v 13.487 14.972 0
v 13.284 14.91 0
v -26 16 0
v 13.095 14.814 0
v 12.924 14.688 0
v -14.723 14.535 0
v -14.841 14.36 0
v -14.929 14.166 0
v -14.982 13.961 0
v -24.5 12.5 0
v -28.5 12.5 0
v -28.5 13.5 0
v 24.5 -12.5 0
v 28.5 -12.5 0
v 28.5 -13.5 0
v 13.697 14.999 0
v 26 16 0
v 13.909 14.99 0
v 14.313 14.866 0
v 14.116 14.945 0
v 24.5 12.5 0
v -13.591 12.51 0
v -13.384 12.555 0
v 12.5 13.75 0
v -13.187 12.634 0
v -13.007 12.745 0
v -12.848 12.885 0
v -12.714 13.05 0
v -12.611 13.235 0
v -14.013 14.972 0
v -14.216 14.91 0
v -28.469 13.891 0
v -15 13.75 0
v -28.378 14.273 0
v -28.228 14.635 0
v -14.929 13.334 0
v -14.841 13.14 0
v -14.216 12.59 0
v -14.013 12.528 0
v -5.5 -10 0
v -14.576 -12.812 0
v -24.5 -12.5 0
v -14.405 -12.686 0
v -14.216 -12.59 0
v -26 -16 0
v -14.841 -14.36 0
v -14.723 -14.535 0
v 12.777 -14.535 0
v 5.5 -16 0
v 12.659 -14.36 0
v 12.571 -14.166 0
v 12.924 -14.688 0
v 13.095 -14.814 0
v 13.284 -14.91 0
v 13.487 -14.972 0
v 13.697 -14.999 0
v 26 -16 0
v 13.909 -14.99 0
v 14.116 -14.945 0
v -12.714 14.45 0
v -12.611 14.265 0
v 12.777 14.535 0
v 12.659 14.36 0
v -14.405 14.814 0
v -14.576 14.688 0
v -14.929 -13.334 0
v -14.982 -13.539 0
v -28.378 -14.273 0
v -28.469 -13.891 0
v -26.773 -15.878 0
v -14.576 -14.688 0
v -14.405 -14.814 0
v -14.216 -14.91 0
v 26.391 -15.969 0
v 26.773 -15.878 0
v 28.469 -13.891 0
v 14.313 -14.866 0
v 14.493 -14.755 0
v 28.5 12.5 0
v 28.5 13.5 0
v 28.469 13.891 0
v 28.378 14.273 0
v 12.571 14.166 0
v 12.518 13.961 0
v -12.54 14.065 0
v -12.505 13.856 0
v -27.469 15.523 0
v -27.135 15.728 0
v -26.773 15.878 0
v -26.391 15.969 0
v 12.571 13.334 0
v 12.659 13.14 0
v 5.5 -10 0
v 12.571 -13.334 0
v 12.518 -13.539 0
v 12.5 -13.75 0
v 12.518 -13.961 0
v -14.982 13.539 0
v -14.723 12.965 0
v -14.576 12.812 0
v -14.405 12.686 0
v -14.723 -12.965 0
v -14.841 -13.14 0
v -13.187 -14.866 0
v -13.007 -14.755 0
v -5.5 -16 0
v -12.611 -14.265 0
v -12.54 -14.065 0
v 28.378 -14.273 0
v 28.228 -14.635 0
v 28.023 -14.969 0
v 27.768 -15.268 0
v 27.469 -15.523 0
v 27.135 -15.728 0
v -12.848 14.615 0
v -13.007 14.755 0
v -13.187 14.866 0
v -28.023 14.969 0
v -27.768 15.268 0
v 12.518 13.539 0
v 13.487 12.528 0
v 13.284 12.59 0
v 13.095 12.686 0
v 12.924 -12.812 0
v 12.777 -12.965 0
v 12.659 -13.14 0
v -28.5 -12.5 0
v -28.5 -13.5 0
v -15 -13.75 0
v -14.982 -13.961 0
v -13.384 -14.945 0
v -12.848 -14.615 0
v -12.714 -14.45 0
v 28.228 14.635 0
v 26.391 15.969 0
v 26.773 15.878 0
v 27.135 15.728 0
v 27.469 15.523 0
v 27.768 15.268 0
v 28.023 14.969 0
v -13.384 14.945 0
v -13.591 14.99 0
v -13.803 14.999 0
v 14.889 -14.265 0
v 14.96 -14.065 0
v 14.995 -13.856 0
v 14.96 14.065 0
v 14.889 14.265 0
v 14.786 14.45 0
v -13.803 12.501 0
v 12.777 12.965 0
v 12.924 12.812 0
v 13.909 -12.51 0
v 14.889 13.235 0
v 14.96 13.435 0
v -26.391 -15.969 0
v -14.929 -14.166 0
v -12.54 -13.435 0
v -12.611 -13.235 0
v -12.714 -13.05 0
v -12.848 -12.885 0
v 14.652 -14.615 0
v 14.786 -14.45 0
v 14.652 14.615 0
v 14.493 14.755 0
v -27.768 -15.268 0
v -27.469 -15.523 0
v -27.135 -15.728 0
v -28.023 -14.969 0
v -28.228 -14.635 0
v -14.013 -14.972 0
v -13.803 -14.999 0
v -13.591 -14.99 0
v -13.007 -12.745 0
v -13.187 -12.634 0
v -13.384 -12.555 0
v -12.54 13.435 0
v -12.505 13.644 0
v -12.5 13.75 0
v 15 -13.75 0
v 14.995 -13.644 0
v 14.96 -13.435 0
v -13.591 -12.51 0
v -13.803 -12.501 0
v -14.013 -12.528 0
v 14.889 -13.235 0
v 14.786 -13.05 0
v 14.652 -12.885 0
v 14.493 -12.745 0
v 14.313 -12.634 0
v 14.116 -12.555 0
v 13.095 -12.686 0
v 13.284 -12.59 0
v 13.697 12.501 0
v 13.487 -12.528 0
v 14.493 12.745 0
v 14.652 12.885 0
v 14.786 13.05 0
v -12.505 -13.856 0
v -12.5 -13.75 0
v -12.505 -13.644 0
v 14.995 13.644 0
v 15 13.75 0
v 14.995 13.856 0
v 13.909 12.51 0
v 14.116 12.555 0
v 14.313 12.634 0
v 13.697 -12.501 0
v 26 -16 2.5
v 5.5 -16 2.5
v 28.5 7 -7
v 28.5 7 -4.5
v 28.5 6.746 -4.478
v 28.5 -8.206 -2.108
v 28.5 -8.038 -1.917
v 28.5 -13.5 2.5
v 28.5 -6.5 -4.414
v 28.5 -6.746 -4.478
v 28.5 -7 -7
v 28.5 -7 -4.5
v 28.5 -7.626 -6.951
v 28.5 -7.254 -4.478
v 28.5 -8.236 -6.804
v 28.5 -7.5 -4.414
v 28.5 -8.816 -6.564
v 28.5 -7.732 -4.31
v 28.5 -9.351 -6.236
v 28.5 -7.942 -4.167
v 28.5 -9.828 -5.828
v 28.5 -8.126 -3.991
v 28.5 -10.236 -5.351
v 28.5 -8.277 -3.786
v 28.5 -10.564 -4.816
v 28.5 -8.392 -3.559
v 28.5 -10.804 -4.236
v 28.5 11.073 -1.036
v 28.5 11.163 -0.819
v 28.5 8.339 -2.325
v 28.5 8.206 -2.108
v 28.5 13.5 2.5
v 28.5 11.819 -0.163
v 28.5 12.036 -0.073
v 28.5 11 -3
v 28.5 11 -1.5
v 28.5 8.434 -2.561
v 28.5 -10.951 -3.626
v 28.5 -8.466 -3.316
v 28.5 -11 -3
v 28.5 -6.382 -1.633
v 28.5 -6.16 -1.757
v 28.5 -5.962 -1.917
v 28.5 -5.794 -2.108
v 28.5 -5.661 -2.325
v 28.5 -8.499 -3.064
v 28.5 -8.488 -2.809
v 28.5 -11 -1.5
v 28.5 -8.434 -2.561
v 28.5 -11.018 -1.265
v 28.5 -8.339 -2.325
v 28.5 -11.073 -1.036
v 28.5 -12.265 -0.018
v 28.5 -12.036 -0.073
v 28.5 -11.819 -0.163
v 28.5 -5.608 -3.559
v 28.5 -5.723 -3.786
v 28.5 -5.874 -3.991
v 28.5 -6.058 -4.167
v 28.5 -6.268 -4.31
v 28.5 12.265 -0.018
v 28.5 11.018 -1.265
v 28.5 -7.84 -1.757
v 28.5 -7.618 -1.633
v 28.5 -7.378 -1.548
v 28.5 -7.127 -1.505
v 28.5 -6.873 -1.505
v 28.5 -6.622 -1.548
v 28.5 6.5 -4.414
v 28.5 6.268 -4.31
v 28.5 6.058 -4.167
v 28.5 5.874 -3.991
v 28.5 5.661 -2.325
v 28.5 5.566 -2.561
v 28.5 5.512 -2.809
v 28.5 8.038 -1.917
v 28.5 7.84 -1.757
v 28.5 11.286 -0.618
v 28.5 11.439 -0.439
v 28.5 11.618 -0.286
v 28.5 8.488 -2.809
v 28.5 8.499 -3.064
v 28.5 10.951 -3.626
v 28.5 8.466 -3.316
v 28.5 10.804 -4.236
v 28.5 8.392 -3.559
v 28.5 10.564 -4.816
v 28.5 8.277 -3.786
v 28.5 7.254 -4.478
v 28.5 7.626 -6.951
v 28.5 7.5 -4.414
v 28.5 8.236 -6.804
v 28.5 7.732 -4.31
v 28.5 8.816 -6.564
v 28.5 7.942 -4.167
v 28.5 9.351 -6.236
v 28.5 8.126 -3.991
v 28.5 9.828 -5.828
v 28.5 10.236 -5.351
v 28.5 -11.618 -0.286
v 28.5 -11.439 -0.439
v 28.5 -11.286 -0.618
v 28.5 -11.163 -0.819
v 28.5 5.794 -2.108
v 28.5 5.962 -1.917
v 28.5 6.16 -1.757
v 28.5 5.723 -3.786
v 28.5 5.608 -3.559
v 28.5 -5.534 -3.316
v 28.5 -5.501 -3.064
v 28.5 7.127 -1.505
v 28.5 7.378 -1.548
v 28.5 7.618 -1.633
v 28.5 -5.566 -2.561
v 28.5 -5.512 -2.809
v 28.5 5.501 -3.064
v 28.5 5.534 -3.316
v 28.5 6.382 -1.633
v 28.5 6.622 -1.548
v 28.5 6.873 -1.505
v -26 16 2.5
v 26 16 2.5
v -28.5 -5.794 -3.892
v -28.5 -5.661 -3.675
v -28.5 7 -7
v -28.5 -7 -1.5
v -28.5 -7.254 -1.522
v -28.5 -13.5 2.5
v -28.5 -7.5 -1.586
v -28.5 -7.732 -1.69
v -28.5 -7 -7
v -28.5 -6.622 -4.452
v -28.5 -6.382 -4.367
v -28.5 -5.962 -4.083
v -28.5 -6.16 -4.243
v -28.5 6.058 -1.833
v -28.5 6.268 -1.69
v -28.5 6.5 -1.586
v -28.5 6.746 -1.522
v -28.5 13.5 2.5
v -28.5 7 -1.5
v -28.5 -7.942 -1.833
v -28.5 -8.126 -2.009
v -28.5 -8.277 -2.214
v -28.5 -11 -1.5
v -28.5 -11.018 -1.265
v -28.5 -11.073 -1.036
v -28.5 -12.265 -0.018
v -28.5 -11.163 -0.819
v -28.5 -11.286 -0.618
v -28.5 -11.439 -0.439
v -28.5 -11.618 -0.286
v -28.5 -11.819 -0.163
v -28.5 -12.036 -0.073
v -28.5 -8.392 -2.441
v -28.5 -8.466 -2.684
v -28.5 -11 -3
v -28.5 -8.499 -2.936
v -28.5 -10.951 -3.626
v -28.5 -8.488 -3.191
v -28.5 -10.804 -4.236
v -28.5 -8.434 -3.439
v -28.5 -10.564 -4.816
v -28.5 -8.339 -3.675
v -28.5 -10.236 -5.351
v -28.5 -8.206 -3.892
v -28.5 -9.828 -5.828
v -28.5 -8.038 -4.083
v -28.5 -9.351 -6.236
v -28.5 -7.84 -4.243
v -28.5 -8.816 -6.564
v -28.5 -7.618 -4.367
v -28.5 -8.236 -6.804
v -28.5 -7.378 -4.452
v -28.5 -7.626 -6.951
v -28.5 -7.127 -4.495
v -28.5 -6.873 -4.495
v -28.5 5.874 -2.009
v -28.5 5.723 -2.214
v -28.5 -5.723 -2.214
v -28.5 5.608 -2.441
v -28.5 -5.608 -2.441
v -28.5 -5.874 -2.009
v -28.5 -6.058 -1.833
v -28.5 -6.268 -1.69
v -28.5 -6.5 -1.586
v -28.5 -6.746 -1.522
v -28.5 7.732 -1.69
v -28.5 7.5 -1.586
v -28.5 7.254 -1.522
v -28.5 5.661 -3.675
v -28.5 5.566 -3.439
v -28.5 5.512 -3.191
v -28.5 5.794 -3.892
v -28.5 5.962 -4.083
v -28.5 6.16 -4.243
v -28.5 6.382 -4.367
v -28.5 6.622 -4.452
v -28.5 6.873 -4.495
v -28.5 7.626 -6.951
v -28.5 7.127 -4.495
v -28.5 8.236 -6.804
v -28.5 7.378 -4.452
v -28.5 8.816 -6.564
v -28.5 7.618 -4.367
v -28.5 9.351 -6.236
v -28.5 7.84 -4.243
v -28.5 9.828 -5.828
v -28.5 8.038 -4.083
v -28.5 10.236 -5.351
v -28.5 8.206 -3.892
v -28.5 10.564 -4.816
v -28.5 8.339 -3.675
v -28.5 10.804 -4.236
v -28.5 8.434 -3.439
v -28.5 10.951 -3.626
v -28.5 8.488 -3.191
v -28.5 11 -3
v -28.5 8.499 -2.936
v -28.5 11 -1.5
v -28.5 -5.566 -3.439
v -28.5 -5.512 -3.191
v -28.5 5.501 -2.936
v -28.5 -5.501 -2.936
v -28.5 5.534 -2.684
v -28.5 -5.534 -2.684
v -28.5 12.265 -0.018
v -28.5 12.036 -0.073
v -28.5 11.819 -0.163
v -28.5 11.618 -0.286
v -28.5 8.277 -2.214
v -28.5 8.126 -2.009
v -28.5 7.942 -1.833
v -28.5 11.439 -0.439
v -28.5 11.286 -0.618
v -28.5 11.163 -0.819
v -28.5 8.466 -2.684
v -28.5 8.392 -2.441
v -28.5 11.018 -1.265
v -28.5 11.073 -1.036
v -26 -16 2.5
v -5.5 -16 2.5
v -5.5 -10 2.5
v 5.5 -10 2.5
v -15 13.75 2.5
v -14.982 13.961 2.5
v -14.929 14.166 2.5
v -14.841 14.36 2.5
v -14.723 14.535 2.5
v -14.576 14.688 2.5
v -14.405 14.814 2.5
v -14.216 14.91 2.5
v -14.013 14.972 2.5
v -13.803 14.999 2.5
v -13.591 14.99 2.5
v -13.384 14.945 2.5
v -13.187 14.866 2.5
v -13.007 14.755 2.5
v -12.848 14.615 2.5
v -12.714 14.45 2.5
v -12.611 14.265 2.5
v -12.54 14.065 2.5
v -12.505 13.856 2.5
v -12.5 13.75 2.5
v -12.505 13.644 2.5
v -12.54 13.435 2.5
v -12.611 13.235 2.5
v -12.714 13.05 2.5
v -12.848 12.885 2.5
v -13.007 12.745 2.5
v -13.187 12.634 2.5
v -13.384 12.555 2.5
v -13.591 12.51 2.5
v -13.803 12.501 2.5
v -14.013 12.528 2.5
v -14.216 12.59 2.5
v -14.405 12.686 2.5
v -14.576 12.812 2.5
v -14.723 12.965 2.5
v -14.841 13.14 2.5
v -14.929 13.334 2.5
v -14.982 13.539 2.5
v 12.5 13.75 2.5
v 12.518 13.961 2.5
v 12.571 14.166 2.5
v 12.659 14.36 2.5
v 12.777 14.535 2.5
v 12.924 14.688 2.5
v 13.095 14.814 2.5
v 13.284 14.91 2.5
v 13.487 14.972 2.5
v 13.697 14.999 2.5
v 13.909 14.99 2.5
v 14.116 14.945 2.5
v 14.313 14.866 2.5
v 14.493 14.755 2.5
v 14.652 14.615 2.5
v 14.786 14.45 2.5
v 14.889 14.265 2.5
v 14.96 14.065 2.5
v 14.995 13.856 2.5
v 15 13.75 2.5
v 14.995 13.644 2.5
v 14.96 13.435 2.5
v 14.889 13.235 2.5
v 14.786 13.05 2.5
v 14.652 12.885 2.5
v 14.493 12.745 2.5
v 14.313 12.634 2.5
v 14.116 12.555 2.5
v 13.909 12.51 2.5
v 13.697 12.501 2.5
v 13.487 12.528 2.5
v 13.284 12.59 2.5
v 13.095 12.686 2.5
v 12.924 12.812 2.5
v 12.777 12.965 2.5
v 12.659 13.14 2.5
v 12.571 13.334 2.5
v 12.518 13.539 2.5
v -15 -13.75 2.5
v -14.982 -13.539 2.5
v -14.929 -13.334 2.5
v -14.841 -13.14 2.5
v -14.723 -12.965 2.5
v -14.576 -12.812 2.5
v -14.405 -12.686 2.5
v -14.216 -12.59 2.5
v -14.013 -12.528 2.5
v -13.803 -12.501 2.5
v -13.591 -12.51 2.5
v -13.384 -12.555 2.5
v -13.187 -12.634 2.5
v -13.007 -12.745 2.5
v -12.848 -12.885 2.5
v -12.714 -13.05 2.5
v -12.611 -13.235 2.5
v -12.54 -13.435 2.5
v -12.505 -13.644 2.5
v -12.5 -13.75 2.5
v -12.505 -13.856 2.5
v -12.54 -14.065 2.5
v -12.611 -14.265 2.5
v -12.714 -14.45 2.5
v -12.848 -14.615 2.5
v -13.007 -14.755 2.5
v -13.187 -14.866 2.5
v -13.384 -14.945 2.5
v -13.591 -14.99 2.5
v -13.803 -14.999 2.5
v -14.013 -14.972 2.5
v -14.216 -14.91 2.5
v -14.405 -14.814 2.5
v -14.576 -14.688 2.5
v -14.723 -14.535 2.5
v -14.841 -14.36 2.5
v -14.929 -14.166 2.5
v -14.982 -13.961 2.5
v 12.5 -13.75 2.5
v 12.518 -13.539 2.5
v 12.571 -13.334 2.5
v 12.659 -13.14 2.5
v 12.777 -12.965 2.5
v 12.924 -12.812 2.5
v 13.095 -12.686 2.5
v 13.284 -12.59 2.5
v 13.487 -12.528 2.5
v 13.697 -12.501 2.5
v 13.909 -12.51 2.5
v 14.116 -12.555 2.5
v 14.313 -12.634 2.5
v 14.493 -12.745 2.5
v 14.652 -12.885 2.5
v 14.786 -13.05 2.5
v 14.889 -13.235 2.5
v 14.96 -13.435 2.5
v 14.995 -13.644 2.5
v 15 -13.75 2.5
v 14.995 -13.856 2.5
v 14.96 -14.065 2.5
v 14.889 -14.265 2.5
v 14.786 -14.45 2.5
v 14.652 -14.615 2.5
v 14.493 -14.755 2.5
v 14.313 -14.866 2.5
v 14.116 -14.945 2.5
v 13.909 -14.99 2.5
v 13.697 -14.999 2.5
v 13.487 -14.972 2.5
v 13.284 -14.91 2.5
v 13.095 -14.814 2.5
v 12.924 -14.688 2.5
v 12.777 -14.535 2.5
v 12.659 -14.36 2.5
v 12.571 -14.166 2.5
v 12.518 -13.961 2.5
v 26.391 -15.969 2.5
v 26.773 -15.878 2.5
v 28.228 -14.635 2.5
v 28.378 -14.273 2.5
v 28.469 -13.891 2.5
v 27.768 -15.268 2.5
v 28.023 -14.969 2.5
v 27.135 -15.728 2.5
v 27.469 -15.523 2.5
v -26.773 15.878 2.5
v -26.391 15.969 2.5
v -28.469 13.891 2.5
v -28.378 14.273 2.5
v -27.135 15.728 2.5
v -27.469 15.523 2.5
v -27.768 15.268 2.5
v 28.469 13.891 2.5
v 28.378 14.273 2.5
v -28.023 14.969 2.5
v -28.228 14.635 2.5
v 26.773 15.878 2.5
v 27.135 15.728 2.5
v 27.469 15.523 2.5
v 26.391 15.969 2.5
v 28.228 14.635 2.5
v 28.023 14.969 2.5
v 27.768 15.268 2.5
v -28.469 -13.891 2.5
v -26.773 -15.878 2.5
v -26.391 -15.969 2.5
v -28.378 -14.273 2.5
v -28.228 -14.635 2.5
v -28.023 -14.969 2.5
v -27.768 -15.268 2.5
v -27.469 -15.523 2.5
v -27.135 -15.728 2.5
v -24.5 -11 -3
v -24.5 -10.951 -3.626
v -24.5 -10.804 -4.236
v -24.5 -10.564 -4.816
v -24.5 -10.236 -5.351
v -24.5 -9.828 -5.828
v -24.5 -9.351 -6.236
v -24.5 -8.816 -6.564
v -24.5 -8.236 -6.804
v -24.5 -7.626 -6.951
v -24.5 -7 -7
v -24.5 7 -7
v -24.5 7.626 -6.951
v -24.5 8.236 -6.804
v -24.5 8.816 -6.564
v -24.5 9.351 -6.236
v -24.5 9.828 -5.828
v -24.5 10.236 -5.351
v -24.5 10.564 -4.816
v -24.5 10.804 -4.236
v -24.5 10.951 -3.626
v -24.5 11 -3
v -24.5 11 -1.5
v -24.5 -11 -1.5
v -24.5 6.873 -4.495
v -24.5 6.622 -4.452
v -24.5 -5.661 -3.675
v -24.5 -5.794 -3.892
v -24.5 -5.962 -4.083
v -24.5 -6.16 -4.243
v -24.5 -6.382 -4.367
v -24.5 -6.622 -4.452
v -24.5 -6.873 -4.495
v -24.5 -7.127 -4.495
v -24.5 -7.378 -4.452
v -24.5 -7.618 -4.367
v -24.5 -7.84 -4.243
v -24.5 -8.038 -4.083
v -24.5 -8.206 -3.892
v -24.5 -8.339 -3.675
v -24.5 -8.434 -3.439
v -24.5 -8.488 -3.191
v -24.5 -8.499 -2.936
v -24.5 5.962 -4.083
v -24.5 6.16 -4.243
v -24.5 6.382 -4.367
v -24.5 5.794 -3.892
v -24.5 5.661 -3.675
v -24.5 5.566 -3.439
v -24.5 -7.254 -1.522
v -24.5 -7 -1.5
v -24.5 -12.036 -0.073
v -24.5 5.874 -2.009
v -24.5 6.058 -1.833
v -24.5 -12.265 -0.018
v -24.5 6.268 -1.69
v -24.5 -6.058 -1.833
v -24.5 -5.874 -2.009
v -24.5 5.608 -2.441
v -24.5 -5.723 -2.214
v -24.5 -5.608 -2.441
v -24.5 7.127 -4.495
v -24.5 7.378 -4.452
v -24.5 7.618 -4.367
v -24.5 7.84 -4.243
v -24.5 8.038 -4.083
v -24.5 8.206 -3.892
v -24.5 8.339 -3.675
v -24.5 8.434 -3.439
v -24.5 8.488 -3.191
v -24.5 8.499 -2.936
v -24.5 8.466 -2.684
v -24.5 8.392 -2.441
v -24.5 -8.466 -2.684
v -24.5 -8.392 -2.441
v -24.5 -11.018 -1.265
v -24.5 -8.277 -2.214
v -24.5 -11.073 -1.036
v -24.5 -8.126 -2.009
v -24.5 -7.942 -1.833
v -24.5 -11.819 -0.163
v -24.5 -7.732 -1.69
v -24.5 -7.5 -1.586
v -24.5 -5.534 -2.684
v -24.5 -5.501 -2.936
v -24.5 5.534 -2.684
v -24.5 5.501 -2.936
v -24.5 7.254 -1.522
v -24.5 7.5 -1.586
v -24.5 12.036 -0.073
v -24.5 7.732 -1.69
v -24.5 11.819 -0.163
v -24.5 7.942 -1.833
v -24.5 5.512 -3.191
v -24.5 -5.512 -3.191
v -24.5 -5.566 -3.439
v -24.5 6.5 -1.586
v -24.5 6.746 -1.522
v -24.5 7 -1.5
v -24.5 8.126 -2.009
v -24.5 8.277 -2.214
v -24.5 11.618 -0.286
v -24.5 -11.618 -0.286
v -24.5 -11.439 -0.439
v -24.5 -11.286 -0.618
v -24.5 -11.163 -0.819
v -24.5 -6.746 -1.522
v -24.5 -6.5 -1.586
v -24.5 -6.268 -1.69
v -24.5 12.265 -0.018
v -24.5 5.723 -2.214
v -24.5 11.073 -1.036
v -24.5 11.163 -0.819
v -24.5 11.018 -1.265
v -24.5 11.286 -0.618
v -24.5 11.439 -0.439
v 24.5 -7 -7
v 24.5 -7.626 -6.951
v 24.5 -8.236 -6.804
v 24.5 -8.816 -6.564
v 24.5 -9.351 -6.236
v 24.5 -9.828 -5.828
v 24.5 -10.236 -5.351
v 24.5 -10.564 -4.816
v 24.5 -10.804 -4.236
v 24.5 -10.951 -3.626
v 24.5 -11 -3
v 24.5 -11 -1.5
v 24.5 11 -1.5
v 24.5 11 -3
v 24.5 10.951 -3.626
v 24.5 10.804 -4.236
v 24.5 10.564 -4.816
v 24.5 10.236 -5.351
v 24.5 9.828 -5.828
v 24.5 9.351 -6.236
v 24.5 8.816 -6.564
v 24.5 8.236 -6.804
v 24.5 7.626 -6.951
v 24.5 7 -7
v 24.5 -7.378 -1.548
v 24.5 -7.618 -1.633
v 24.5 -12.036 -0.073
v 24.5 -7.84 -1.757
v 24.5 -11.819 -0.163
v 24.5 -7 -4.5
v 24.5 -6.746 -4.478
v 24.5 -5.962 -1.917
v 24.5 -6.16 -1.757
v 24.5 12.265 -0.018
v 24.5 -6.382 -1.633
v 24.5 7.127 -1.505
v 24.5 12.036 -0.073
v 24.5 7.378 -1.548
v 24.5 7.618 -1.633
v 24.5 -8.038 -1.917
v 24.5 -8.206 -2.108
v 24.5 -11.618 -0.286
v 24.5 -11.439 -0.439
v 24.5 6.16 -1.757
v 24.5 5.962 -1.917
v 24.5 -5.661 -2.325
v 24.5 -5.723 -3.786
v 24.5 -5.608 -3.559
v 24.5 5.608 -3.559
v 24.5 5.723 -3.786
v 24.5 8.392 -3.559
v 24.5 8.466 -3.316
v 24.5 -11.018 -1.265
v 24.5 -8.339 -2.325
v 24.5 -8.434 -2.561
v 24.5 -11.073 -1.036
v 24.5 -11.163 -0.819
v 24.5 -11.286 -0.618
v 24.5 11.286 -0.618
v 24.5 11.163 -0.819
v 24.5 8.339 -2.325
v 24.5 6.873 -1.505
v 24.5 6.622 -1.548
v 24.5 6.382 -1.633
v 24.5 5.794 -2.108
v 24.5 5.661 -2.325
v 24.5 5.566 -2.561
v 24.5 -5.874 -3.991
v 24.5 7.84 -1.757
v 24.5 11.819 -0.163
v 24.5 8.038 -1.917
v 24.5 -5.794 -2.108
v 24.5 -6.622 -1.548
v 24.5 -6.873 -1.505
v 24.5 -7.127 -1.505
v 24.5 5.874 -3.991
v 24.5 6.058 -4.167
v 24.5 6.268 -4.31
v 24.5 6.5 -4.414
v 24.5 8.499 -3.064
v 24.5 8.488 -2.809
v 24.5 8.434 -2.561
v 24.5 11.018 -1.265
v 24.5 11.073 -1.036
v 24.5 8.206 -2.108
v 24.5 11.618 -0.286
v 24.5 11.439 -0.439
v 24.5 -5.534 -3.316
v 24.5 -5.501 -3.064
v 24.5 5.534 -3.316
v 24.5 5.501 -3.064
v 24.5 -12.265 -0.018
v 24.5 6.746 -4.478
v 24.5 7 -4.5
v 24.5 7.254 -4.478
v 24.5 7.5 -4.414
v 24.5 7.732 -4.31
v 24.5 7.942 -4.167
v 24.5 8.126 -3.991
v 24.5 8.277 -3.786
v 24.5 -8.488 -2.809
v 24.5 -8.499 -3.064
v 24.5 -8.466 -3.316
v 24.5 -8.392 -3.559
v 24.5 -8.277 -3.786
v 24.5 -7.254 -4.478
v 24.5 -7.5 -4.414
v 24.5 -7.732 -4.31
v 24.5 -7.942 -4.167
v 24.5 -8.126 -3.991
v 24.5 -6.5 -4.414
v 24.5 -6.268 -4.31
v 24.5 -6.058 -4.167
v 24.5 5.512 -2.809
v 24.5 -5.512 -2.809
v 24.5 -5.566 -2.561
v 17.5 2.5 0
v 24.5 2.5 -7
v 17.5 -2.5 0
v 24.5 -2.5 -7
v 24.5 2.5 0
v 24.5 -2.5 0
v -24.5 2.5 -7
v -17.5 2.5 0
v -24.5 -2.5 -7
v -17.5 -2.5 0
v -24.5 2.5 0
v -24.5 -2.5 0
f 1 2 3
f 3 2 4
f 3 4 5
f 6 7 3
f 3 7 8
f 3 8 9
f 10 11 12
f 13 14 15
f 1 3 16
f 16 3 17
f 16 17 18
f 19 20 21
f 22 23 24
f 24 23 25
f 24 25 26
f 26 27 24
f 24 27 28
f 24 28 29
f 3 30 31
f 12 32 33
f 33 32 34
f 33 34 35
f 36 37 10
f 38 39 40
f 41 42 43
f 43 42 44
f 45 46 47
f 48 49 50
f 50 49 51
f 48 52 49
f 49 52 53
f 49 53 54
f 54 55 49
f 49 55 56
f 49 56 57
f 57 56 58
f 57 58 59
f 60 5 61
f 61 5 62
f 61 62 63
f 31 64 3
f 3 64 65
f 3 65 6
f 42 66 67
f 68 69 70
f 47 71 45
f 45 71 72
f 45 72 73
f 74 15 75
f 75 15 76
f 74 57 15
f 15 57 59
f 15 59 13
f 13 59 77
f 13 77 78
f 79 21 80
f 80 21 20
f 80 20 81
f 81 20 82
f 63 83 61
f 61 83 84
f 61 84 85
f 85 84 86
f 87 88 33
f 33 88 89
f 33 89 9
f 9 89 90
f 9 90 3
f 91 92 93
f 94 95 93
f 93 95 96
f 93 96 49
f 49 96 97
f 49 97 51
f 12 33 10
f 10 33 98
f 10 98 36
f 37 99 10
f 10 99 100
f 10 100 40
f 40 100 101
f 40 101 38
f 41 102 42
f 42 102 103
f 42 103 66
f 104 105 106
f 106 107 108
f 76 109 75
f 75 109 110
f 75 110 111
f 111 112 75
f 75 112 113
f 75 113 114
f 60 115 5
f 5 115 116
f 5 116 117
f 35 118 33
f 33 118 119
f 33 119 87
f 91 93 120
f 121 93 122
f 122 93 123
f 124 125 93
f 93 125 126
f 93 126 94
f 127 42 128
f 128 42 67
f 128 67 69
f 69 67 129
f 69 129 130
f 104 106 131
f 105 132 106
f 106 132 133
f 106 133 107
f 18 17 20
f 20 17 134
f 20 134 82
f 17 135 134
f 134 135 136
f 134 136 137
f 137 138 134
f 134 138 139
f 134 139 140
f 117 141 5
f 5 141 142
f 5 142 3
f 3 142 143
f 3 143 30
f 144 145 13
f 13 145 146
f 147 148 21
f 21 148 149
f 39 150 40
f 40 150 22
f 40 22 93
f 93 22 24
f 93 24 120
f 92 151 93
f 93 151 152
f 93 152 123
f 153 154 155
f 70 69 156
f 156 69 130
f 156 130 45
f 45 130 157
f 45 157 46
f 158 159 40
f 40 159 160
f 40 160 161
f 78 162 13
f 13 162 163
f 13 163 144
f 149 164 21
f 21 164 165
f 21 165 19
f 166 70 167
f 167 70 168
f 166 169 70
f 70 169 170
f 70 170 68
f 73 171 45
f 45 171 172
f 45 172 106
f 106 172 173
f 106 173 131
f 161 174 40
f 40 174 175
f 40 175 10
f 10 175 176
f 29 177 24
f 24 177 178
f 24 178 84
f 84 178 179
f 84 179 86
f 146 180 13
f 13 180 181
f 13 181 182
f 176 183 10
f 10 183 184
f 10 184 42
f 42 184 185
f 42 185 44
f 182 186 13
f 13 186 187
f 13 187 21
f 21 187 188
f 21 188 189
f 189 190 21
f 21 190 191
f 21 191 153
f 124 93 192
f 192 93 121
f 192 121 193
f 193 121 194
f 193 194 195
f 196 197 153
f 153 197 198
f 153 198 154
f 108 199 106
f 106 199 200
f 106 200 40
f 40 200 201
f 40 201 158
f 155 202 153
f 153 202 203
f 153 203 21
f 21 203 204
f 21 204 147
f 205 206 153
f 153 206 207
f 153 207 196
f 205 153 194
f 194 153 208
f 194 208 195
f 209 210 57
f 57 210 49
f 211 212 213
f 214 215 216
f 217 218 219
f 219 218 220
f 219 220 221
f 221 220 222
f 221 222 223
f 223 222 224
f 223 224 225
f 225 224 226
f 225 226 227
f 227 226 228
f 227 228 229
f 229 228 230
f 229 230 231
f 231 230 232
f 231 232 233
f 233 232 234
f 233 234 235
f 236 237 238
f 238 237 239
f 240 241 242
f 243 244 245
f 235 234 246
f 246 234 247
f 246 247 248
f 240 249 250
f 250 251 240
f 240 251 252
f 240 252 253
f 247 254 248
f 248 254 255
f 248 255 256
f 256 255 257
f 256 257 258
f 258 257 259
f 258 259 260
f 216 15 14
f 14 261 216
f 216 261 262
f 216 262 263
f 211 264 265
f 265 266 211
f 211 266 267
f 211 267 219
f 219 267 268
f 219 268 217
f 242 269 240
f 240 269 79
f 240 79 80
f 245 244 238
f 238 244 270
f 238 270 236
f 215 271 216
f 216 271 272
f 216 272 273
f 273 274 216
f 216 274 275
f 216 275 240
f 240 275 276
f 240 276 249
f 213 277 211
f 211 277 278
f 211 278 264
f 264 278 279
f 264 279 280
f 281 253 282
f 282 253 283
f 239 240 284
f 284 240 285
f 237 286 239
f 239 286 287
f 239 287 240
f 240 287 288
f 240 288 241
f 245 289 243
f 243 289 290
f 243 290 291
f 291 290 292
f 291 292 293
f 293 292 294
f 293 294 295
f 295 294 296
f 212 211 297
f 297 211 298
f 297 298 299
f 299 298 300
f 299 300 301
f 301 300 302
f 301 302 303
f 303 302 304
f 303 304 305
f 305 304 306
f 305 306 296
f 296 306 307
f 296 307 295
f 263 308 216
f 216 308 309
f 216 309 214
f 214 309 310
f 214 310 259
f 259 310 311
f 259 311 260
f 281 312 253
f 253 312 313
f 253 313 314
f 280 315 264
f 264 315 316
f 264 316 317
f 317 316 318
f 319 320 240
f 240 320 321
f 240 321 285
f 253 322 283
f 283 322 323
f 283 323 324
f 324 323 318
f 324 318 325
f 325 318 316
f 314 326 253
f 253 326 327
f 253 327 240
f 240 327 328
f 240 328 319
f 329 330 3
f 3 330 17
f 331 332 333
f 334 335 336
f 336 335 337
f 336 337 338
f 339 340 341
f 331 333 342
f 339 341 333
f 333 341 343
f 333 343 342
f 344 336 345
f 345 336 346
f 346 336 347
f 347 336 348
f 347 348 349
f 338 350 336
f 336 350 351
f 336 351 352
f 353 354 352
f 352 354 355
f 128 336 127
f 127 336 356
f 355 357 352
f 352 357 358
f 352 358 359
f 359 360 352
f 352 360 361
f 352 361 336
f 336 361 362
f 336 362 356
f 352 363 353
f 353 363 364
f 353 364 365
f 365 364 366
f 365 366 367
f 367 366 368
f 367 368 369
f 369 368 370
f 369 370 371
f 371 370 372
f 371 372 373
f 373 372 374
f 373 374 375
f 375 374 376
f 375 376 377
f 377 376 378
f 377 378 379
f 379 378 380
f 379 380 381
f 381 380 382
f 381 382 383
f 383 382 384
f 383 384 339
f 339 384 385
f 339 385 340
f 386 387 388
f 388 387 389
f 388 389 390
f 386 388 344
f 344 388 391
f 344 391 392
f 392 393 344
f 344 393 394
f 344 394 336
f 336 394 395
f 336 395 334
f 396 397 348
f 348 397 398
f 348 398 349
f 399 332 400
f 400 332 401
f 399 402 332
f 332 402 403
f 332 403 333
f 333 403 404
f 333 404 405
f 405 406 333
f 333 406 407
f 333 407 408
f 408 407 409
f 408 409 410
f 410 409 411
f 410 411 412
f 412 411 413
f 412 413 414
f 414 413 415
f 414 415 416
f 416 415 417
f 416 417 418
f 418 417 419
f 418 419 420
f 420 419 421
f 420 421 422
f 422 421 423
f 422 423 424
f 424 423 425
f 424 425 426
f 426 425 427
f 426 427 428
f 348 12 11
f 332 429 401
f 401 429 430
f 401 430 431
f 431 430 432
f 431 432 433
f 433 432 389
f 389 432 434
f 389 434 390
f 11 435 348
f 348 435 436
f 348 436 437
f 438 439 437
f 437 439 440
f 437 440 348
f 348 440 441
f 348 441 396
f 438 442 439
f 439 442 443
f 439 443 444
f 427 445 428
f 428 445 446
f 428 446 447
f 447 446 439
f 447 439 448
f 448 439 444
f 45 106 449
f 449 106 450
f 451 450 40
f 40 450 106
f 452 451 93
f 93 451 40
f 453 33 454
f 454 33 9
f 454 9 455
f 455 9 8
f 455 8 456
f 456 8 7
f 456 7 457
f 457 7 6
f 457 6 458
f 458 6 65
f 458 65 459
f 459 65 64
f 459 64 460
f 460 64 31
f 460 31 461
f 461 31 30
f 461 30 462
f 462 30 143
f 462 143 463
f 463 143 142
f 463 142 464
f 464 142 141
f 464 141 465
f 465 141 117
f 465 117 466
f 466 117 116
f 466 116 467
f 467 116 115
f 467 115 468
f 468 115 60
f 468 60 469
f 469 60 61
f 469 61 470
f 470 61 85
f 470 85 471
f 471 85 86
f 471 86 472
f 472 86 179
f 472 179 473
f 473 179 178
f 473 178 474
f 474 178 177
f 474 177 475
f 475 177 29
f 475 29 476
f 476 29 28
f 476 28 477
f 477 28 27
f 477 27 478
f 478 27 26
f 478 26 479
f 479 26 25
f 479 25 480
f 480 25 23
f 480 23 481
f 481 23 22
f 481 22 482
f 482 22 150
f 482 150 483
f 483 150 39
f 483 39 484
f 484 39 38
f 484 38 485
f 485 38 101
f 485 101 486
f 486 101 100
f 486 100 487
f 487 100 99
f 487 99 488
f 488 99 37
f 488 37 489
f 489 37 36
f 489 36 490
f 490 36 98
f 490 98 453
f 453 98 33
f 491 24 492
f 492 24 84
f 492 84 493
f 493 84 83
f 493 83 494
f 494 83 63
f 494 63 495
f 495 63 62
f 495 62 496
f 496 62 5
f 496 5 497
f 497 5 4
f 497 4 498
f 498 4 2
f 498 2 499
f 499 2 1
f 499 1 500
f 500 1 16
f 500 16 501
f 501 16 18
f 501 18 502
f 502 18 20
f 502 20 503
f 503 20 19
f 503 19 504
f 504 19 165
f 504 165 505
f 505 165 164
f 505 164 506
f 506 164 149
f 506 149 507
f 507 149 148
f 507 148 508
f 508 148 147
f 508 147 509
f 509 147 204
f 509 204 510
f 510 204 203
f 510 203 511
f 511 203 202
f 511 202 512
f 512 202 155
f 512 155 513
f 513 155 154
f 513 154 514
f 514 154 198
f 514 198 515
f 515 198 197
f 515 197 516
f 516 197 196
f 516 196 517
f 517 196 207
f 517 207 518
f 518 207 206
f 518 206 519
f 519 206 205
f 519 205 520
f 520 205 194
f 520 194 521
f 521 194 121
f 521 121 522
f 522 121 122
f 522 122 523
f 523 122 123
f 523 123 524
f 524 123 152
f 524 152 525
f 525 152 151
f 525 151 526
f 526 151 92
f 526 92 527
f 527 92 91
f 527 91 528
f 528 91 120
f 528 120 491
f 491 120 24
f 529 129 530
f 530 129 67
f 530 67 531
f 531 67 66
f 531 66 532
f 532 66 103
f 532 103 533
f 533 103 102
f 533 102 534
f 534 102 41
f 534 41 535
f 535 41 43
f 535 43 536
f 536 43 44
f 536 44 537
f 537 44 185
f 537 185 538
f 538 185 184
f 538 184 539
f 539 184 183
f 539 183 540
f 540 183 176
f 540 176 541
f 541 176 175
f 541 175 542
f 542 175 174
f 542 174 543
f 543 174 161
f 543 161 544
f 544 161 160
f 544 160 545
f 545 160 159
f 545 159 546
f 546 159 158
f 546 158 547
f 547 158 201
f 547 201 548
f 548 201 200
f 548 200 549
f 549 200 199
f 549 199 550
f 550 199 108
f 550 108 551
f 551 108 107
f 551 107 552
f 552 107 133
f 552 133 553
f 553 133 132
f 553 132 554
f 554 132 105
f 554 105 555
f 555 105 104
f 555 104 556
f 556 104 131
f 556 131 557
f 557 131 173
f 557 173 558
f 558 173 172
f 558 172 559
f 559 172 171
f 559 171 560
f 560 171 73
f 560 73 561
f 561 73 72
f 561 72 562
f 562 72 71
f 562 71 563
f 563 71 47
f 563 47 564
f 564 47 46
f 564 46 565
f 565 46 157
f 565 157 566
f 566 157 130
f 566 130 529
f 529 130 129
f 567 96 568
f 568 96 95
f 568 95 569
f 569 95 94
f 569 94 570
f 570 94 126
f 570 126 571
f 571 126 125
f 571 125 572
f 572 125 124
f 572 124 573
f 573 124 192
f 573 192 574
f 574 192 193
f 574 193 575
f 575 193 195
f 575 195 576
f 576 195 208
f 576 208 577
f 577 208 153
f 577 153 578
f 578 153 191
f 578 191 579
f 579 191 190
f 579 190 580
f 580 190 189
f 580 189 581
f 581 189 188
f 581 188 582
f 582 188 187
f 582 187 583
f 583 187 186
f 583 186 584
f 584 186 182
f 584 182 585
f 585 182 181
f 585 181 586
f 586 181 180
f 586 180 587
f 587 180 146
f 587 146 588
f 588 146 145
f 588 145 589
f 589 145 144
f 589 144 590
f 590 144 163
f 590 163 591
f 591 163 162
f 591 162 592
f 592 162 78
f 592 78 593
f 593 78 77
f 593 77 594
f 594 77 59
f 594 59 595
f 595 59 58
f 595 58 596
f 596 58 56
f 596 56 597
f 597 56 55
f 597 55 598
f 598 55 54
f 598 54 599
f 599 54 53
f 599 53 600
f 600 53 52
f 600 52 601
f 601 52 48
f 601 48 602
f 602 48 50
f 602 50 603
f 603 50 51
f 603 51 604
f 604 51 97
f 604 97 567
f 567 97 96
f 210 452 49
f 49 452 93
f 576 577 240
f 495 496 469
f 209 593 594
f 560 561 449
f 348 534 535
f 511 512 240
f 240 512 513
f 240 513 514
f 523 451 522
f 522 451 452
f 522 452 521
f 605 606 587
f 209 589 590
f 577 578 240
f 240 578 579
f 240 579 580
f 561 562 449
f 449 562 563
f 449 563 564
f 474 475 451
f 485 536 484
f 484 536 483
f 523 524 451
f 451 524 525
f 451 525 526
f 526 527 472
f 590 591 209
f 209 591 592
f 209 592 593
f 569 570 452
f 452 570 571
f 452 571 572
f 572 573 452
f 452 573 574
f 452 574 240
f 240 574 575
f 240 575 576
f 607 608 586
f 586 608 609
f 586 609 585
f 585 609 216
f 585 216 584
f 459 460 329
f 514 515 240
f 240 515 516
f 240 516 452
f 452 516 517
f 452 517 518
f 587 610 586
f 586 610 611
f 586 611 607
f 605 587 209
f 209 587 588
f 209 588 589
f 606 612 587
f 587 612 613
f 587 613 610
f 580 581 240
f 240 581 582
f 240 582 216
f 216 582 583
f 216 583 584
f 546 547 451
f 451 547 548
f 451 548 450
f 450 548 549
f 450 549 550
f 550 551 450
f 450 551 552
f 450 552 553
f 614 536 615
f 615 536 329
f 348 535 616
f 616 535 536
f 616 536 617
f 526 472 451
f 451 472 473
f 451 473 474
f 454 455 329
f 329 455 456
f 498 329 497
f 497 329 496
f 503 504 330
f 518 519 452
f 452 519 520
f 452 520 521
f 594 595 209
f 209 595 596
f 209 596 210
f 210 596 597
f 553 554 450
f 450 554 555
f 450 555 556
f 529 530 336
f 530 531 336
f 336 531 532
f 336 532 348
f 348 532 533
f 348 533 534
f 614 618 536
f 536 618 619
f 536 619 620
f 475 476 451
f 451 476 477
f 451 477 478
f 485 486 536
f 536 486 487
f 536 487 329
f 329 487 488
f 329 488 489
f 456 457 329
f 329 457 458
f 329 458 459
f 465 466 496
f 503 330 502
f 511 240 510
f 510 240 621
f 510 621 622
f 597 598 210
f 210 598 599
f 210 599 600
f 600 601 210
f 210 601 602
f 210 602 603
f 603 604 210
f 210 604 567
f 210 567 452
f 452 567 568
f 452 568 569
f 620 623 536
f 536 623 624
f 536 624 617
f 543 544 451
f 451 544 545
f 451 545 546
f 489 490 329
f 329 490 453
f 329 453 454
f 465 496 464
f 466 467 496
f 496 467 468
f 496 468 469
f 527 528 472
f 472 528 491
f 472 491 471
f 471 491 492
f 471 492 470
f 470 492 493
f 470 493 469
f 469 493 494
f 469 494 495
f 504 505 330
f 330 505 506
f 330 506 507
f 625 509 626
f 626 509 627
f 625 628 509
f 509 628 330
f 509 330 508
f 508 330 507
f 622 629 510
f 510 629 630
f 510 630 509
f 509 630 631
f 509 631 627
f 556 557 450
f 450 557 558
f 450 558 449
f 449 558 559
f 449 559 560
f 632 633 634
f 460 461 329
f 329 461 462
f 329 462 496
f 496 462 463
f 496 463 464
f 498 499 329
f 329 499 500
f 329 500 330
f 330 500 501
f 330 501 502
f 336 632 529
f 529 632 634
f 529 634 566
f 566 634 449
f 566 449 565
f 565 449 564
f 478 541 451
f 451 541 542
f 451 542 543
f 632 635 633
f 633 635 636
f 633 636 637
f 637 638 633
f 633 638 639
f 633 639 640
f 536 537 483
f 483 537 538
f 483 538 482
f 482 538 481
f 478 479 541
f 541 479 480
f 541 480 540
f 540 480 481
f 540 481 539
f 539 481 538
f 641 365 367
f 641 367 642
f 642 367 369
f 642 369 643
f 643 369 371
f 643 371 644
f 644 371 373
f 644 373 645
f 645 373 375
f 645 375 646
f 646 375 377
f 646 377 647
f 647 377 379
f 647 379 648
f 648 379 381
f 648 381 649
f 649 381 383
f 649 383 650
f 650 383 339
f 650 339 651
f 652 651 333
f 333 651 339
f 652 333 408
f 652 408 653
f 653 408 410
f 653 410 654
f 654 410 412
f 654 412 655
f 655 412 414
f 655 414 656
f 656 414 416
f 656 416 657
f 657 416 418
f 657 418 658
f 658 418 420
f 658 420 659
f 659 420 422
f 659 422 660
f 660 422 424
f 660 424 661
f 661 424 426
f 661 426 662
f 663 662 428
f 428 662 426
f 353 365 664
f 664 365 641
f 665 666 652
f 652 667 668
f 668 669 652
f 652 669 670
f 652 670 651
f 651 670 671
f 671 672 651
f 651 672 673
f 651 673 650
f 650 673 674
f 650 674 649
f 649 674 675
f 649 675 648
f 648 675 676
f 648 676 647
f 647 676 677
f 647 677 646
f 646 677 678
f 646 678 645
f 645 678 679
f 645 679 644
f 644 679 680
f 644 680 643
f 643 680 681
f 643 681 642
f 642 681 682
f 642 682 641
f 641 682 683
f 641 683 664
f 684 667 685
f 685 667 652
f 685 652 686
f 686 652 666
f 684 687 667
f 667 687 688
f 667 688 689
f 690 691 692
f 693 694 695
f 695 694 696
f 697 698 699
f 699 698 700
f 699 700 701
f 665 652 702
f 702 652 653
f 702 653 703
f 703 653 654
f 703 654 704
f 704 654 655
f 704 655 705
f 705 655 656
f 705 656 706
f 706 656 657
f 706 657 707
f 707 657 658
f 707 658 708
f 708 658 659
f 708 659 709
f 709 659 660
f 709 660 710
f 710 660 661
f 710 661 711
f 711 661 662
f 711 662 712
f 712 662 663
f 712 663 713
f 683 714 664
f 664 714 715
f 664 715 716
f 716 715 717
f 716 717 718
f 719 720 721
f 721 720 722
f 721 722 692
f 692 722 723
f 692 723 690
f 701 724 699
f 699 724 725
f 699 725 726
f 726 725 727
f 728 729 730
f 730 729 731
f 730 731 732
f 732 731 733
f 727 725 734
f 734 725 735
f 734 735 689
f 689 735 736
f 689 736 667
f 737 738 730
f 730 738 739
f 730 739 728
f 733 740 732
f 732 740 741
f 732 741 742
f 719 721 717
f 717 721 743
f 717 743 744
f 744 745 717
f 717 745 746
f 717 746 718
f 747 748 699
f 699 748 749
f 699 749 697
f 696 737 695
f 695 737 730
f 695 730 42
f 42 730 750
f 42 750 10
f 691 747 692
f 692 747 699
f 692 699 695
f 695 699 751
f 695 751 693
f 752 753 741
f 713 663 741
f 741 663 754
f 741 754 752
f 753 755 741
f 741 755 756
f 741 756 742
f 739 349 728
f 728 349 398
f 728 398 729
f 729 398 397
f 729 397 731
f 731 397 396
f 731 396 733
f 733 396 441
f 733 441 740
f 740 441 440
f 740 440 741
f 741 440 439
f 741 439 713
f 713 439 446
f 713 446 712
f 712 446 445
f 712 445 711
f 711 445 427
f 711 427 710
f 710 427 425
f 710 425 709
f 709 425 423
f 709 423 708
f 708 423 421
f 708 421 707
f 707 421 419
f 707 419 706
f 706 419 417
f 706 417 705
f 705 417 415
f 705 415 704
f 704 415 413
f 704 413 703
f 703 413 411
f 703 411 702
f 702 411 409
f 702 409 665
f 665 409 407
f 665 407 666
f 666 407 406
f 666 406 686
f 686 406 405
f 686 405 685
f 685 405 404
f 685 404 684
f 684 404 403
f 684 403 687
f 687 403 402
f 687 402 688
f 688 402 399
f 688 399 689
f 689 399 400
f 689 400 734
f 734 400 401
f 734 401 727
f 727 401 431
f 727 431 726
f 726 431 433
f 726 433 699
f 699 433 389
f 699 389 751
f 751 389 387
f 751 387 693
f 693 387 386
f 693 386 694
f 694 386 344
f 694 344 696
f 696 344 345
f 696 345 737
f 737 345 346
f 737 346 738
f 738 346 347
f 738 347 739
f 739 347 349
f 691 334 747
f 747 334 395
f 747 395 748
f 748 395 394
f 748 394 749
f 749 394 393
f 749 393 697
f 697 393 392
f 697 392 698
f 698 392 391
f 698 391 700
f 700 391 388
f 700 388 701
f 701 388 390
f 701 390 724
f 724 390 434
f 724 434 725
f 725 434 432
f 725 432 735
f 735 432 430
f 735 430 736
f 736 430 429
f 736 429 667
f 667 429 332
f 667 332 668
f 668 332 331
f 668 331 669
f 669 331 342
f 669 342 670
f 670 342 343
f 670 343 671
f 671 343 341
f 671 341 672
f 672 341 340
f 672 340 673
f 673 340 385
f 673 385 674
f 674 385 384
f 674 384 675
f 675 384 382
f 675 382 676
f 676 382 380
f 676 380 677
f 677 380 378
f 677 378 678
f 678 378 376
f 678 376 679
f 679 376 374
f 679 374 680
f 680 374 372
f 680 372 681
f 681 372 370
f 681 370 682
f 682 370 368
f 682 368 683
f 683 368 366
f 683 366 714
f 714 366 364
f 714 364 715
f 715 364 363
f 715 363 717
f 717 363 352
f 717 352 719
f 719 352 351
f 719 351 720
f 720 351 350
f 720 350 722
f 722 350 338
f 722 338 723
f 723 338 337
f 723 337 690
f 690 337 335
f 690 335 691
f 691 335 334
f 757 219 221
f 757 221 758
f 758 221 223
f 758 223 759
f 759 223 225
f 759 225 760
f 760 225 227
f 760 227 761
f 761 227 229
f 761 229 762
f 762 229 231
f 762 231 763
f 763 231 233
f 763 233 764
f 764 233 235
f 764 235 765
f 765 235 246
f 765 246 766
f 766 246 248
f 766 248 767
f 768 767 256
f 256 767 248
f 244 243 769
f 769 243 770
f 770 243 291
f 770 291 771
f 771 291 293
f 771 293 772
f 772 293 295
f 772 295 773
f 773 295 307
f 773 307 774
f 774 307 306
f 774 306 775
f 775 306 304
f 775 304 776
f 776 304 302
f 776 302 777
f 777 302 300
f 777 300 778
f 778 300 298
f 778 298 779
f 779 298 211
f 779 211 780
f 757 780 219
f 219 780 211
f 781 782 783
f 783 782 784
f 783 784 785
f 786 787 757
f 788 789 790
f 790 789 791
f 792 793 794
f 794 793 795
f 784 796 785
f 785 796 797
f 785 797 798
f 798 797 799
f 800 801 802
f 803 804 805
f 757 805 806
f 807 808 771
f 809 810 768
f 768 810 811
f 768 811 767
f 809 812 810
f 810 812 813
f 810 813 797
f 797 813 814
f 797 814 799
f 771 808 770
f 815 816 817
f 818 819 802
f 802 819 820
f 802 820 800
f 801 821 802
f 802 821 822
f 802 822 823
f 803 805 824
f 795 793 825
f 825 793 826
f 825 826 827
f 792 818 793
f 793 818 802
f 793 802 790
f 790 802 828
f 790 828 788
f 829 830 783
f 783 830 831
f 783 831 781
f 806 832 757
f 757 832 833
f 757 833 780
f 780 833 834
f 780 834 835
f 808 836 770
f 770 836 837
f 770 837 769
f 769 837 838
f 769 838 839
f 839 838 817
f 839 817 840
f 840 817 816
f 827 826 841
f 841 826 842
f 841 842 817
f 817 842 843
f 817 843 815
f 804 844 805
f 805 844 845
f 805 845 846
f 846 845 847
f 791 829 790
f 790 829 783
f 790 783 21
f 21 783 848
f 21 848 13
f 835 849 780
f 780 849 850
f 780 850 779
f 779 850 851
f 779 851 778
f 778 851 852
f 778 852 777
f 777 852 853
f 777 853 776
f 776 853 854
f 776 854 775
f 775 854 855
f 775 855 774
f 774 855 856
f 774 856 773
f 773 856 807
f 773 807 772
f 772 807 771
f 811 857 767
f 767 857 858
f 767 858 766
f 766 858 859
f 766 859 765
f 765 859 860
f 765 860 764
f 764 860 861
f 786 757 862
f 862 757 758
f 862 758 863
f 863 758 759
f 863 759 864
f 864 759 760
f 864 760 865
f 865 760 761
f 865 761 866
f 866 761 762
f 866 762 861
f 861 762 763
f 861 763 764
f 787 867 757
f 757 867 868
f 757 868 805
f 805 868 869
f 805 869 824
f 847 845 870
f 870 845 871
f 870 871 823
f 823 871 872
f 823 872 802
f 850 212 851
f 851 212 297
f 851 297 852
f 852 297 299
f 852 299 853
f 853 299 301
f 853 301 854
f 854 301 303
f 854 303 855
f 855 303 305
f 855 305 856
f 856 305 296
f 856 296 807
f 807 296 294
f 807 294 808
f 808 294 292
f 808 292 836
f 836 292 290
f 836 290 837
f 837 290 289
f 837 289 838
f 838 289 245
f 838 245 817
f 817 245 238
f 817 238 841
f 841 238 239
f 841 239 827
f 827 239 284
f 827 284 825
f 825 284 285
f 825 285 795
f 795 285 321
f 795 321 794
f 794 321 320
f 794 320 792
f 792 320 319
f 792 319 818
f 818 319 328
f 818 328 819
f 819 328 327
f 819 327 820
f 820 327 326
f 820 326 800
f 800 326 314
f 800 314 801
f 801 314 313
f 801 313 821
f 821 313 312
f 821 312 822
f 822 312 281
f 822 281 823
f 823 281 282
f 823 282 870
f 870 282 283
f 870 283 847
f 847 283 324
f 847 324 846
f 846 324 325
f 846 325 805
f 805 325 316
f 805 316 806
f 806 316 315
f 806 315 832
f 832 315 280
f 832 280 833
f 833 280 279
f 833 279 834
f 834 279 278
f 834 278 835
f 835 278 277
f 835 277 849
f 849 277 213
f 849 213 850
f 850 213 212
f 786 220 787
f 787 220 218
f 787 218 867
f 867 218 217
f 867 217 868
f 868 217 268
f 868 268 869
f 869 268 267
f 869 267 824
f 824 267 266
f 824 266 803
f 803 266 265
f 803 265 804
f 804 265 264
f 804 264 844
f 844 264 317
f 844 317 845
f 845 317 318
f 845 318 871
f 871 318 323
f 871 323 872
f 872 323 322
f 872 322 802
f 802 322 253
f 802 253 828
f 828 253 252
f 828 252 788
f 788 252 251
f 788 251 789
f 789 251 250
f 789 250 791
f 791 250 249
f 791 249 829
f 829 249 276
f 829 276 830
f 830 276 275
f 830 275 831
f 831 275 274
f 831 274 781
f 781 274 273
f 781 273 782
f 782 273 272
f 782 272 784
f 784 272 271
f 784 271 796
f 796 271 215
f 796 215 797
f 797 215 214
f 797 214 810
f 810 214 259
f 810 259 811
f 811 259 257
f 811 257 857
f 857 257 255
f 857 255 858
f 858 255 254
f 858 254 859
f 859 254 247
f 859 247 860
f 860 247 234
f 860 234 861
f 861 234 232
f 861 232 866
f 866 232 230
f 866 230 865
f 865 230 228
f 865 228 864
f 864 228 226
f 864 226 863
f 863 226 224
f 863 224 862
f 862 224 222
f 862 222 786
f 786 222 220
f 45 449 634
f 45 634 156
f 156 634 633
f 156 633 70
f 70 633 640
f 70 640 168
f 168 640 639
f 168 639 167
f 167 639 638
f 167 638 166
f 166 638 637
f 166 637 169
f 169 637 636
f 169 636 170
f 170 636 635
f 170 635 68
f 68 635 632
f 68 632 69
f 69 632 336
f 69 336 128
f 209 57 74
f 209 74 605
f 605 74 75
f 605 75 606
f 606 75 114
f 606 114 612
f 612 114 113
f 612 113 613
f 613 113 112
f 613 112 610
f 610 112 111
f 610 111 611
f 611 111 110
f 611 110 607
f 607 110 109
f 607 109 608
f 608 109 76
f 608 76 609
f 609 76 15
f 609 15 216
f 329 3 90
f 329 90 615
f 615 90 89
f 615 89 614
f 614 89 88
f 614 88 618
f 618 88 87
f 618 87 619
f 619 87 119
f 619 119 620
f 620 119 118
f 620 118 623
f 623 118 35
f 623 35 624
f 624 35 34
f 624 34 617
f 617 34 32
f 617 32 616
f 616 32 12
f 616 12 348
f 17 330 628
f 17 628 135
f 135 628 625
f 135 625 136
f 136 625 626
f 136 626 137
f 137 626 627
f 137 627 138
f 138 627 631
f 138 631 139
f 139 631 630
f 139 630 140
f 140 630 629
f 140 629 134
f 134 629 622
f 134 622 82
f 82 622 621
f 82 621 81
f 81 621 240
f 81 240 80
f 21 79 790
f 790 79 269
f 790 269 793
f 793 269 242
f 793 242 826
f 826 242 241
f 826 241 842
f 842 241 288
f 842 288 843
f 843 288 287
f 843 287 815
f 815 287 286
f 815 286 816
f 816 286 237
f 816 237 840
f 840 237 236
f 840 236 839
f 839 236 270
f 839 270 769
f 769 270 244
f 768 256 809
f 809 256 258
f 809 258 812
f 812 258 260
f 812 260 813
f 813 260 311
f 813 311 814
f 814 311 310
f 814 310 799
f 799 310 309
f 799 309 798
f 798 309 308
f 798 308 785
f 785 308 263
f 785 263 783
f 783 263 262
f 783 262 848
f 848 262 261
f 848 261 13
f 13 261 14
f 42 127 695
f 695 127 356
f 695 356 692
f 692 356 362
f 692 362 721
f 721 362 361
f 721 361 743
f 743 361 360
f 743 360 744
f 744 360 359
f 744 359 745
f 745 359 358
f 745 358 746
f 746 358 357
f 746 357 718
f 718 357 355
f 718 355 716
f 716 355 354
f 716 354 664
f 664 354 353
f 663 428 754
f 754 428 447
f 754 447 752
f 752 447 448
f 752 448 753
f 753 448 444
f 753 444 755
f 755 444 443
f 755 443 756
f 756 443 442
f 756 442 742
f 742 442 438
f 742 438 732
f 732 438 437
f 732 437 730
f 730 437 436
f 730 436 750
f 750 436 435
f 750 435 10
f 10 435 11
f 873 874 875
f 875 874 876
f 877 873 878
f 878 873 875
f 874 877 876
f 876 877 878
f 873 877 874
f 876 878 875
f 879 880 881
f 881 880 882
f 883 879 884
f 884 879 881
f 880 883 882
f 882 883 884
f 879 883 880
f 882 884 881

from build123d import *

# Parameters (mm, degrees)
SKETCH_1_R         = 1.25
EXTRUDE_1_DEPTH    = 2.5
SKETCH_3_R         = 1.5
EXTRUDE_2_DEPTH    = 4
EXTRUDE_START      = -4
SKETCH_4_R         = 1.5
EXTRUDE_3_DEPTH    = 4
FILLET_2_R         = 2.5
FILLET_3_R         = 1.5
GUSSET_1_THICKNESS = 5
GUSSET_2_THICKNESS = 5


with BuildPart() as part:
    # 草图1 → 凸台-拉伸1 (new body)
    with BuildSketch(Plane.XY):
        Polygon((-28.5, -16), (-16, -16), (-5.5, -16), (-5.5, -10), (0, -10), (5.5, -10), (5.5, -16), (16, -16), (28.5, -16), (28.5, 16), (16, 16), (-16, 16), (-28.5, 16), align=None)
        with Locations((-13.75, -13.75)):
            Circle(SKETCH_1_R, mode=Mode.SUBTRACT)
        with Locations((13.75, -13.75)):
            Circle(SKETCH_1_R, mode=Mode.SUBTRACT)
        with Locations((-13.75, 13.75)):
            Circle(SKETCH_1_R, mode=Mode.SUBTRACT)
        with Locations((13.75, 13.75)):
            Circle(SKETCH_1_R, mode=Mode.SUBTRACT)
    extrude(amount=EXTRUDE_1_DEPTH)

    # 草图3 → 凸台-拉伸2 (add)
    with BuildSketch(Plane.ZY.offset(28.5)):
        with BuildLine():
            Line((-3, 11), (0, 11))
            Line((0, 11), (0, -11))
            Line((0, -11), (-3, -11))
            ThreePointArc((-3, -11), (-5.828427125, -9.828427125), (-7, -7))
            Line((-7, -7), (-7, 7))
            ThreePointArc((-7, 7), (-5.828427125, 9.828427125), (-3, 11))
        make_face()
        with Locations((-3, 7)):
            Circle(SKETCH_3_R, mode=Mode.SUBTRACT)
        with Locations((-3, -7)):
            Circle(SKETCH_3_R, mode=Mode.SUBTRACT)
    extrude(amount=-EXTRUDE_2_DEPTH)

    # 草图4 → 凸台-拉伸3 (add)
    with BuildSketch(Plane(origin=(28.5, 0, 0), x_dir=(0, 0, -1), z_dir=(1, 0, 0)).offset(EXTRUDE_START)):
        with BuildLine():
            Line((7, -7), (7, 7))
            ThreePointArc((7, 7), (5.828427125, 9.828427125), (3, 11))
            Line((3, 11), (0, 11))
            Line((0, 11), (0, -11))
            Line((0, -11), (3, -11))
            ThreePointArc((3, -11), (5.828427125, -9.828427125), (7, -7))
        make_face()
        with Locations(Location((3, 7, 0), (0, 0, 180))):
            Circle(SKETCH_4_R, mode=Mode.SUBTRACT)
        with Locations(Location((3, -7, 0), (0, 0, 180))):
            Circle(SKETCH_4_R, mode=Mode.SUBTRACT)
    extrude(amount=EXTRUDE_3_DEPTH)

    # 圆角2
    fillet_2_edges = [part.edges().sort_by_distance(p)[0] for p in [
        (-28.5, -16, 1.25),
        (-28.5, 16, 1.25),
        (28.5, 16, 1.25),
        (28.5, -16, 1.25),
    ]]
    fillet(fillet_2_edges, radius=FILLET_2_R)

    # 圆角3
    fillet_3_edges = [part.edges().sort_by_distance(p)[0] for p in [
        (-26.5, 11, 0),
        (-26.5, -11, 0),
        (26.5, -11, 0),
        (26.5, 11, 0),
    ]]
    fillet(fillet_3_edges, radius=FILLET_3_R)


with BuildPart() as body_2:
    # Gusset 1: a gusset: a plate 5.0 thick in the corner of two members, its outline drawn in place
    gusset_1_outline = Wire([Line((24.5, 2.5, 0), (24.5, 2.5, -7)), Line((24.5, 2.5, -7), (17.5, 2.5, 0)), Line((17.5, 2.5, 0), (24.5, 2.5, 0))])
    add(extrude(Face(gusset_1_outline), amount=GUSSET_1_THICKNESS, dir=(0, -1, 0)))


with BuildPart() as body_3:
    # Gusset 2: a gusset: a plate 5.0 thick in the corner of two members, its outline drawn in place
    gusset_2_outline = Wire([Line((-24.5, 2.5, 0), (-17.5, 2.5, 0)), Line((-17.5, 2.5, 0), (-24.5, 2.5, -7)), Line((-24.5, 2.5, -7), (-24.5, 2.5, 0))])
    add(extrude(Face(gusset_2_outline), amount=GUSSET_2_THICKNESS, dir=(0, -1, 0)))


solid = Compound([part.part, body_2.part, body_3.part])
